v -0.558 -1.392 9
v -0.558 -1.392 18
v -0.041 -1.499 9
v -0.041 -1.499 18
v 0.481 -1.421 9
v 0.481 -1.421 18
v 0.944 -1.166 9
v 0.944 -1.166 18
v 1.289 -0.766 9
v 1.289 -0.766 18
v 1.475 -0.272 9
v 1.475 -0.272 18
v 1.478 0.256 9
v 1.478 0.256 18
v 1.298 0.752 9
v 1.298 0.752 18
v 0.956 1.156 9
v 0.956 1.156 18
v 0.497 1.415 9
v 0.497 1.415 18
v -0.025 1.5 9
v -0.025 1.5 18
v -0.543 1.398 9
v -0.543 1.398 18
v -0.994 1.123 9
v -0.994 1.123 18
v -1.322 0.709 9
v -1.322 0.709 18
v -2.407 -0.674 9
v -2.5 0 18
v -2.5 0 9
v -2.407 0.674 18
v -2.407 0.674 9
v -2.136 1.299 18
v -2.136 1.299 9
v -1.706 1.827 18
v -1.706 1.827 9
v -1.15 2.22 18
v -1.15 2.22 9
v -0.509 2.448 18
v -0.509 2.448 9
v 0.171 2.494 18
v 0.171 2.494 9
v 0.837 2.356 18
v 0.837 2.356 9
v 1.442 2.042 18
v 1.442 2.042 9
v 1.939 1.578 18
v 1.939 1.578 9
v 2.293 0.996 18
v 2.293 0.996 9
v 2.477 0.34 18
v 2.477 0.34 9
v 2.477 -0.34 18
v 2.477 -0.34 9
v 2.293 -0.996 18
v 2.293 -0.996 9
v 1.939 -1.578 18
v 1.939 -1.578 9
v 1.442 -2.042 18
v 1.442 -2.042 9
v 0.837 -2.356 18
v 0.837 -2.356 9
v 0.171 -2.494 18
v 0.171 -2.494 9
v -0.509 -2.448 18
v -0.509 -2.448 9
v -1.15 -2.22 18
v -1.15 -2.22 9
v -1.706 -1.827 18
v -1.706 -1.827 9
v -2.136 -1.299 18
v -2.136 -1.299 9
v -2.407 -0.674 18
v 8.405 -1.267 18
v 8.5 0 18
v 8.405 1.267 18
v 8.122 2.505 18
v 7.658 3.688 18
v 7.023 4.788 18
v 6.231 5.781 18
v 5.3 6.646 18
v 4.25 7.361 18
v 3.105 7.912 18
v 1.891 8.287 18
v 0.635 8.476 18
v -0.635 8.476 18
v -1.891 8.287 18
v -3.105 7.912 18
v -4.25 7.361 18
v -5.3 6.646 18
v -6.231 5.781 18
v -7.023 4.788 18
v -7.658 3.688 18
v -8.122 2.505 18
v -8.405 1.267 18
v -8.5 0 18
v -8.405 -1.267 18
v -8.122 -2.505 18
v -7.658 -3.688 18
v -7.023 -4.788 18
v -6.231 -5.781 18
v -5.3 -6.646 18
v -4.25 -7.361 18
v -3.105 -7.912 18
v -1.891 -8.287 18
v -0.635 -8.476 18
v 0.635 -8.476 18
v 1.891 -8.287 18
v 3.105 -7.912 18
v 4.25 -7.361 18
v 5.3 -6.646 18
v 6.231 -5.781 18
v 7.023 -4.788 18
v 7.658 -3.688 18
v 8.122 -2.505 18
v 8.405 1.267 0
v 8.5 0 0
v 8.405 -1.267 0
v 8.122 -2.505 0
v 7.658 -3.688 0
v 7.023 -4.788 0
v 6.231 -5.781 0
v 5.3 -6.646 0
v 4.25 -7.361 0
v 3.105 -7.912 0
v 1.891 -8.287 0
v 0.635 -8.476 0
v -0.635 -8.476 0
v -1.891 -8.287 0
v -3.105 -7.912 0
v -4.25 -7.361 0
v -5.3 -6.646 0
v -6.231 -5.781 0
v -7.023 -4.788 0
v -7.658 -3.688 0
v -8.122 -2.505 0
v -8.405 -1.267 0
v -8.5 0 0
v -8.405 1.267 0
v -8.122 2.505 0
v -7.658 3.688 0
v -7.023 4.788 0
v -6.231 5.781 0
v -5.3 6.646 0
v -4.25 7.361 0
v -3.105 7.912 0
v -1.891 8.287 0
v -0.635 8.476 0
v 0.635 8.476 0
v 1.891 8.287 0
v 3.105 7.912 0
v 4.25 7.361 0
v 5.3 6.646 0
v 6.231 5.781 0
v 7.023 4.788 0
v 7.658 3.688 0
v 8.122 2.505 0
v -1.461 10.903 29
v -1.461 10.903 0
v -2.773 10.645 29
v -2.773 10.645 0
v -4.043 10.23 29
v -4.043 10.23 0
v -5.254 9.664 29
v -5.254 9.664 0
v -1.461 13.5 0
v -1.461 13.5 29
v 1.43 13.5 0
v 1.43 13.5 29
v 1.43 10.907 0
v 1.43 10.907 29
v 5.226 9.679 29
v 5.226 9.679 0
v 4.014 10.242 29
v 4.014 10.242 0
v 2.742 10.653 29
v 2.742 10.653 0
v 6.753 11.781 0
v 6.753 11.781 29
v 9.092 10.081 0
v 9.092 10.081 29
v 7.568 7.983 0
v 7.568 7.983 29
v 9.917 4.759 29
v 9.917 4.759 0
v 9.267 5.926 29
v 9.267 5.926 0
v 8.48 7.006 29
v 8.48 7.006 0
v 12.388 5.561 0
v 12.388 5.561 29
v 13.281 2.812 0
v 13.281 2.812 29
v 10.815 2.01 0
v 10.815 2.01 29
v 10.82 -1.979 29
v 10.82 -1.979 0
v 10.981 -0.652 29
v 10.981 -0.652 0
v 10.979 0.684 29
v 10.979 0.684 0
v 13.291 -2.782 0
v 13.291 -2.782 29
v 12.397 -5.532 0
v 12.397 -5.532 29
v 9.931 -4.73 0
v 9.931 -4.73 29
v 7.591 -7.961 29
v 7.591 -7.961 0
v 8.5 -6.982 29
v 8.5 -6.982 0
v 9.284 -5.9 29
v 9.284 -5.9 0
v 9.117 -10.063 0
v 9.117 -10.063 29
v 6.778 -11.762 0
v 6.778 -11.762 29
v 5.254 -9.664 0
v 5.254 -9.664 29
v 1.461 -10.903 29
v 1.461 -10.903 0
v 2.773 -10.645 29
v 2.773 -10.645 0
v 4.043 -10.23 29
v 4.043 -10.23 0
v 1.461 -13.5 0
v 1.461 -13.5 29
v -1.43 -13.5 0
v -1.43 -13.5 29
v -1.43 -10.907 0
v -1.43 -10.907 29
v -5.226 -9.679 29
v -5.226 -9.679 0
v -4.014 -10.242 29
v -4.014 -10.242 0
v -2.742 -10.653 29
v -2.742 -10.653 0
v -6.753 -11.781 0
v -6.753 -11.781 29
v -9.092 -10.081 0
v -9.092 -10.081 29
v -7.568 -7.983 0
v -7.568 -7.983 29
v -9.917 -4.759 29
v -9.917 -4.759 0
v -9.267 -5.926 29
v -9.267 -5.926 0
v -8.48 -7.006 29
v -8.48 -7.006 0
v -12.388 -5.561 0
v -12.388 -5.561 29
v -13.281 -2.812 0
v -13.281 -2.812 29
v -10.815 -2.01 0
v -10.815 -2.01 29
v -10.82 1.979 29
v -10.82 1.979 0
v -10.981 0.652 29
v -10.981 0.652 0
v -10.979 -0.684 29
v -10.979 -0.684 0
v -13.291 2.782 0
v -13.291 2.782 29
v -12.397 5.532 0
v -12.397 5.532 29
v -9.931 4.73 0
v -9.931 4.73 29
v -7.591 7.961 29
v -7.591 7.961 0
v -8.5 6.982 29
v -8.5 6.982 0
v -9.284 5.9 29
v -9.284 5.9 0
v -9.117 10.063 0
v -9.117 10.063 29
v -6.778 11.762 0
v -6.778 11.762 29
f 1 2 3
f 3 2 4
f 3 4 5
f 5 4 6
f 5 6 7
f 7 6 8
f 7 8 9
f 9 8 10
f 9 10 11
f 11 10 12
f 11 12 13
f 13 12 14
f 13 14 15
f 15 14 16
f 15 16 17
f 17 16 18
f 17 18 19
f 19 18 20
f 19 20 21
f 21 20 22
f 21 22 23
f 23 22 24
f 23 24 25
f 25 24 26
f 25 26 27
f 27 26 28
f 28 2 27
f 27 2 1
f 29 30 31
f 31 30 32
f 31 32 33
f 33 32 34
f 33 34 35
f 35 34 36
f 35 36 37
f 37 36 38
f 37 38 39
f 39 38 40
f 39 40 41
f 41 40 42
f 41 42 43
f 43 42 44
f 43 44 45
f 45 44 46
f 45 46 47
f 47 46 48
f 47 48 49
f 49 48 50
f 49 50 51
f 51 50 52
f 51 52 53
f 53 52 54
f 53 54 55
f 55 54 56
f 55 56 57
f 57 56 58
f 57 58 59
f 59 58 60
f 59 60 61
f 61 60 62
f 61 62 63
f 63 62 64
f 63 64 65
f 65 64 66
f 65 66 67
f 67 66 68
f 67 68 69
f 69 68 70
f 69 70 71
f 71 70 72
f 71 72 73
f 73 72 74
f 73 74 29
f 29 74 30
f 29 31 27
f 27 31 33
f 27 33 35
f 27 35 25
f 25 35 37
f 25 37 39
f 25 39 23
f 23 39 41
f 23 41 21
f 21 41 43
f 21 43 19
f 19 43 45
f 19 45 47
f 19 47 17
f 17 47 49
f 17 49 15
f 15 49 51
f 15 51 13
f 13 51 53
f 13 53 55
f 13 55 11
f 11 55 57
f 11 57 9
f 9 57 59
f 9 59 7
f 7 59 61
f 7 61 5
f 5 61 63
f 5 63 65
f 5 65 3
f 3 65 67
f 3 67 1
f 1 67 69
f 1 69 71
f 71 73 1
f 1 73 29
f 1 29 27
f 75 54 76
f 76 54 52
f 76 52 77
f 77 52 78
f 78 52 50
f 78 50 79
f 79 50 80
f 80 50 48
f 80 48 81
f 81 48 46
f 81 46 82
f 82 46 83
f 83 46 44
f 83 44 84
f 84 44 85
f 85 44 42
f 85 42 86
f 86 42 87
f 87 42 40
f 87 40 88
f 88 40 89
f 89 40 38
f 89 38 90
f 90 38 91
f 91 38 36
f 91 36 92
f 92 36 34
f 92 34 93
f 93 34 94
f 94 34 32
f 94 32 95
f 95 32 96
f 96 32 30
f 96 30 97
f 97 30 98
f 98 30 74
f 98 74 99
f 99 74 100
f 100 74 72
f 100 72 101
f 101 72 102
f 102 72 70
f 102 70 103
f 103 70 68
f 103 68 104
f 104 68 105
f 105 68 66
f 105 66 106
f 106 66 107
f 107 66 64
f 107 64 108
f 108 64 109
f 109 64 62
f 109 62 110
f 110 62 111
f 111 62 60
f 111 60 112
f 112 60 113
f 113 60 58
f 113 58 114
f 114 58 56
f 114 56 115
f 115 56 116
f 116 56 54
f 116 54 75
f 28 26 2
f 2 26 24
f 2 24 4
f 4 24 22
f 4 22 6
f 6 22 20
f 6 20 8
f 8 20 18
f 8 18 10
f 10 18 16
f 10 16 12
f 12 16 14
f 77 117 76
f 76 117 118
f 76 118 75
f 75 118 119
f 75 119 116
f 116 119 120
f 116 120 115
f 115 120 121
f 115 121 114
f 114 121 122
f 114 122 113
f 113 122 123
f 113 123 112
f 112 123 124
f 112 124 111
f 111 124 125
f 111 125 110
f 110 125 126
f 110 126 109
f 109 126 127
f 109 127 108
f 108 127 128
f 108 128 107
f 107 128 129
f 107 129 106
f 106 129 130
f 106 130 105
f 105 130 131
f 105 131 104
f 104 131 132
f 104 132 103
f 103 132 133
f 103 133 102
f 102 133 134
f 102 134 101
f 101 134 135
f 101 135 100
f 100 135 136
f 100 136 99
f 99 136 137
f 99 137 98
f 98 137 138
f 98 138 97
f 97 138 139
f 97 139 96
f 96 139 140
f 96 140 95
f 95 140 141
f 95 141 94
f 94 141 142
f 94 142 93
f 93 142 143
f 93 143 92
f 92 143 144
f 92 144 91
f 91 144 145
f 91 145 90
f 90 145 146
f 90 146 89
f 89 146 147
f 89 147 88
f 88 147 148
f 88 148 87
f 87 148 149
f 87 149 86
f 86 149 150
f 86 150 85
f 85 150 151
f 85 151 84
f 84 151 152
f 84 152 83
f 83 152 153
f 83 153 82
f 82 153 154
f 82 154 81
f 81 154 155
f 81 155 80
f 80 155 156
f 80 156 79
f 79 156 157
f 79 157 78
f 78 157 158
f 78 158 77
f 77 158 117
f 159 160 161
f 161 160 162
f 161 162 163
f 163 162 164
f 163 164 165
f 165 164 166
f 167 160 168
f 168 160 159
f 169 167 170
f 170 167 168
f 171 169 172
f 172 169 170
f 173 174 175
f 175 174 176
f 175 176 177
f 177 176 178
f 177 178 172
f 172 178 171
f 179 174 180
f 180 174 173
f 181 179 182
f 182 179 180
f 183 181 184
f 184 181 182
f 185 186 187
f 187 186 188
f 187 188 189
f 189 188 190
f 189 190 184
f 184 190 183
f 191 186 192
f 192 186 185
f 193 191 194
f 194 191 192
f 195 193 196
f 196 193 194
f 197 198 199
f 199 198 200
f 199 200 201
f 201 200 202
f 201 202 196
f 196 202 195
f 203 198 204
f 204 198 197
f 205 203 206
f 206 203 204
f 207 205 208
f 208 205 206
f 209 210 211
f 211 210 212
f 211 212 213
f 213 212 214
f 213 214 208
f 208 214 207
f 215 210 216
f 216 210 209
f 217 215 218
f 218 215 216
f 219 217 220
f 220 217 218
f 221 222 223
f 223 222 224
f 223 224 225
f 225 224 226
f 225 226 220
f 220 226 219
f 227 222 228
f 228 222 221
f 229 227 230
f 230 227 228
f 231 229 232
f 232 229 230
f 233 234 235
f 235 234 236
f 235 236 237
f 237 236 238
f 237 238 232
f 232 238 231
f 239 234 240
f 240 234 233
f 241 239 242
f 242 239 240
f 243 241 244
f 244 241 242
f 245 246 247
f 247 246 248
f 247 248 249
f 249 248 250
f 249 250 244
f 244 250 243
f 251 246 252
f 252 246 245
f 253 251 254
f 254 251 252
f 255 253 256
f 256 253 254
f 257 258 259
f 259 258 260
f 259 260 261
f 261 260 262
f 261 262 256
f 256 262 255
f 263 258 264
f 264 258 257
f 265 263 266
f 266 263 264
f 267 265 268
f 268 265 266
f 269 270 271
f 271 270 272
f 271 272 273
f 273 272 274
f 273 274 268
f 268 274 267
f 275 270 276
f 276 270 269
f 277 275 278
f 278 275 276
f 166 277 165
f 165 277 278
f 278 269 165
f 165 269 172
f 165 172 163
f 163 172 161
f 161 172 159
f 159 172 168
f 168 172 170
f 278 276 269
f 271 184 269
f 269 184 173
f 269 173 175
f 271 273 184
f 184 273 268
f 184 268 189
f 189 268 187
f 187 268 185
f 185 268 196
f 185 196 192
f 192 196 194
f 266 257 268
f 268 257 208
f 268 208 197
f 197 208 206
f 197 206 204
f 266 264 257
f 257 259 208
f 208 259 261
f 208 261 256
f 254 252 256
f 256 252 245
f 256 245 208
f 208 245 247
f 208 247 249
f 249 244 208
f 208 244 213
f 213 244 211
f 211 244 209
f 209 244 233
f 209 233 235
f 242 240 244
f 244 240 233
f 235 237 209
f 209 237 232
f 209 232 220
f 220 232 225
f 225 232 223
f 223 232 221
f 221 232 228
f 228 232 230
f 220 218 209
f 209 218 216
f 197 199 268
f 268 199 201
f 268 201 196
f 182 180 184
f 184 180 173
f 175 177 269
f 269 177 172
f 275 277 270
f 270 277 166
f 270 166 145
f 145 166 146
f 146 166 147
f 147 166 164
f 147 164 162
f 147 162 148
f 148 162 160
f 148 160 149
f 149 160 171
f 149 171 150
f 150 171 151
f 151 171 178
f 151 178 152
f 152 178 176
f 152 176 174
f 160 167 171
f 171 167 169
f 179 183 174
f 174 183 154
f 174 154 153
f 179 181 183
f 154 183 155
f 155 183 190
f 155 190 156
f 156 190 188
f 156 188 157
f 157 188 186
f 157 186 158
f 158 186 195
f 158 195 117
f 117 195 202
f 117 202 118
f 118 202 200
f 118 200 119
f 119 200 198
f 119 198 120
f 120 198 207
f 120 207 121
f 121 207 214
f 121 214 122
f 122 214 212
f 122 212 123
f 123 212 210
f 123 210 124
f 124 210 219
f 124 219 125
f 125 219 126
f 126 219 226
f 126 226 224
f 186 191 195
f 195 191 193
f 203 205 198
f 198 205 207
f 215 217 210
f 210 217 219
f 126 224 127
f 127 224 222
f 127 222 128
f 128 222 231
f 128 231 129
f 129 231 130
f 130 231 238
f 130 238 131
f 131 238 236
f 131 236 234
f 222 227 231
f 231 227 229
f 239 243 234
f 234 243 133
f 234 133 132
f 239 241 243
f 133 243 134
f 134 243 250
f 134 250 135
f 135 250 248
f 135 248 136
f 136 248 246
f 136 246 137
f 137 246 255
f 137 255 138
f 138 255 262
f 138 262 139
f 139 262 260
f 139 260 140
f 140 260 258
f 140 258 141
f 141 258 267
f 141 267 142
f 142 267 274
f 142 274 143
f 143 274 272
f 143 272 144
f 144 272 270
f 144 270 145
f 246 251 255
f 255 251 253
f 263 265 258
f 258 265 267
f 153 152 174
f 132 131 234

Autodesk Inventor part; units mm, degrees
ref_plane "YZ Plane" through (0, 0, 0) normal (1, 0, 0) x (0, 1, 0)
sketch "Sketch1" plane through (0, 0, 0) normal (0, 0, 1) x (1, 0, 0)
  circle A0 centre (0, 0) radius 17 construction
  circle A1 centre (0, 0) radius 8.5
  line L0 (-1.4613, 13.5) -> (1.43, 13.5)
  line L1 (1.43, 13.5) -> (1.43, 10.9067)
  line L2 (-1.4613, 10.9025) -> (-1.4613, 13.5)
  line L3 (-6.7782, 11.7623) -> (-5.2539, 9.6642)
  line L4 (-9.1173, 10.0628) -> (-6.7782, 11.7623)
  line L5 (-7.5905, 7.9614) -> (-9.1173, 10.0628)
  line L6 (-12.3974, 5.5317) -> (-9.931, 4.7303)
  line L7 (-13.2908, 2.782) -> (-12.3974, 5.5317)
  line L8 (-10.8205, 1.9793) -> (-13.2908, 2.782)
  line L9 (-13.2812, -2.8117) -> (-10.8147, -2.0103)
  line L10 (-12.3877, -5.5615) -> (-13.2812, -2.8117)
  line L11 (-9.9173, -4.7588) -> (-12.3877, -5.5615)
  line L12 (-9.092, -10.0812) -> (-7.5677, -7.9831)
  line L13 (-6.7529, -11.7806) -> (-9.092, -10.0812)
  line L14 (-5.2261, -9.6792) -> (-6.7529, -11.7806)
  line L15 (-1.43, -13.5) -> (-1.43, -10.9067)
  line L16 (1.4613, -13.5) -> (-1.43, -13.5)
  line L17 (1.4613, -10.9025) -> (1.4613, -13.5)
  line L18 (6.7782, -11.7623) -> (5.2539, -9.6642)
  line L19 (9.1173, -10.0628) -> (6.7782, -11.7623)
  line L20 (7.5905, -7.9614) -> (9.1173, -10.0628)
  line L21 (12.3974, -5.5317) -> (9.931, -4.7303)
  line L22 (13.2908, -2.782) -> (12.3974, -5.5317)
  line L23 (10.8205, -1.9793) -> (13.2908, -2.782)
  line L24 (13.2812, 2.8117) -> (10.8147, 2.0103)
  line L25 (12.3877, 5.5615) -> (13.2812, 2.8117)
  line L26 (9.9173, 4.7588) -> (12.3877, 5.5615)
  line L27 (9.092, 10.0812) -> (7.5677, 7.9831)
  line L28 (6.7529, 11.7806) -> (9.092, 10.0812)
  line L29 (5.2261, 9.6792) -> (6.7529, 11.7806)
  arc A2 (-1.4613, 10.9025) -> (-5.2539, 9.6642) centre (0, 0) ccw construction
  arc A3 (-1.4613, 10.9025) -> (-5.2539, 9.6642) centre (0, 0) ccw
  arc A4 (-7.5905, 7.9614) -> (-9.931, 4.7303) centre (0, 0) ccw
  arc A5 (-7.5905, 7.9614) -> (-9.931, 4.7303) centre (0, 0) ccw construction
  arc A6 (-10.8205, 1.9793) -> (-10.8147, -2.0103) centre (0, 0) ccw
  arc A7 (-10.8205, 1.9793) -> (-10.8147, -2.0103) centre (0, 0) ccw construction
  arc A8 (-9.9173, -4.7588) -> (-7.5677, -7.9831) centre (0, 0) ccw
  arc A9 (-9.9173, -4.7588) -> (-7.5677, -7.9831) centre (0, 0) ccw construction
  arc A10 (5.2261, 9.6792) -> (1.43, 10.9067) centre (0, 0) ccw construction
  arc A11 (5.2261, 9.6792) -> (1.43, 10.9067) centre (0, 0) ccw
  arc A12 (10.8205, -1.9793) -> (10.8147, 2.0103) centre (0, 0) ccw
  arc A13 (10.8205, -1.9793) -> (10.8147, 2.0103) centre (0, 0) ccw construction
  arc A14 (7.5905, -7.9614) -> (9.931, -4.7303) centre (0, 0) ccw
  arc A15 (7.5905, -7.9614) -> (9.931, -4.7303) centre (0, 0) ccw construction
  arc A16 (-5.2261, -9.6792) -> (-1.43, -10.9067) centre (0, 0) ccw
  arc A17 (1.4613, -10.9025) -> (5.2539, -9.6642) centre (0, 0) ccw
  arc A18 (-5.2261, -9.6792) -> (-1.43, -10.9067) centre (0, 0) ccw construction
  arc A19 (1.4613, -10.9025) -> (5.2539, -9.6642) centre (0, 0) ccw construction
  arc A20 (9.9173, 4.7588) -> (7.5677, 7.9831) centre (0, 0) ccw
  dimension "d5" = 360
  dimension "d14" = 5
  dimension "d15" = 11
  dimension "d16" = 34
  dimension "d17" = 17
  dimension "d24" = 2.5933
  dimension "d25" = 2.8912
extrude "Extrusion1" add sketch "Sketch1" along normal blind 29
sketch "Sketch2" plane through (0, 0, 29) normal (0, 0, 1) x (1, 0, 0)
  line L0 (-5.2539, 9.6642) -> (-6.7782, 11.7623) projected
  line L1 (-6.7782, 11.7623) -> (-9.1173, 10.0628) projected
  line L2 (-9.1173, 10.0628) -> (-7.5905, 7.9614) projected
  arc A0 (-7.5905, 7.9614) -> (-9.931, 4.7303) centre (0, 0) ccw projected
  line L3 (-9.931, 4.7303) -> (-12.3974, 5.5317) projected
  line L4 (-12.3974, 5.5317) -> (-13.2908, 2.782) projected
  line L5 (-13.2908, 2.782) -> (-10.8205, 1.9793) projected
  arc A1 (-10.8205, 1.9793) -> (-10.8147, -2.0103) centre (0, 0) ccw projected
  line L6 (-10.8147, -2.0103) -> (-13.2812, -2.8117) projected
  line L7 (-13.2812, -2.8117) -> (-12.3877, -5.5615) projected
  line L8 (-12.3877, -5.5615) -> (-9.9173, -4.7588) projected
  arc A2 (-9.9173, -4.7588) -> (-7.5677, -7.9831) centre (0, 0) ccw projected
  line L9 (-7.5677, -7.9831) -> (-9.092, -10.0812) projected
  line L10 (-9.092, -10.0812) -> (-6.7529, -11.7806) projected
  line L11 (-6.7529, -11.7806) -> (-5.2261, -9.6792) projected
  arc A3 (-5.2261, -9.6792) -> (-1.43, -10.9067) centre (0, 0) ccw projected
  line L12 (-1.43, -10.9067) -> (-1.43, -13.5) projected
  line L13 (-1.43, -13.5) -> (1.4613, -13.5) projected
  line L14 (1.4613, -13.5) -> (1.4613, -10.9025) projected
  arc A4 (1.4613, -10.9025) -> (5.2539, -9.6642) centre (0, 0) ccw projected
  line L15 (5.2539, -9.6642) -> (6.7782, -11.7623) projected
  line L16 (6.7782, -11.7623) -> (9.1173, -10.0628) projected
  line L17 (9.1173, -10.0628) -> (7.5905, -7.9614) projected
  arc A5 (7.5905, -7.9614) -> (9.931, -4.7303) centre (0, 0) ccw projected
  line L18 (9.931, -4.7303) -> (12.3974, -5.5317) projected
  line L19 (12.3974, -5.5317) -> (13.2908, -2.782) projected
  line L20 (13.2908, -2.782) -> (10.8205, -1.9793) projected
  arc A6 (10.8205, -1.9793) -> (10.8147, 2.0103) centre (0, 0) ccw projected
  line L21 (10.8147, 2.0103) -> (13.2812, 2.8117) projected
  line L22 (13.2812, 2.8117) -> (12.3877, 5.5615) projected
  line L23 (12.3877, 5.5615) -> (9.9173, 4.7588) projected
  arc A7 (9.9173, 4.7588) -> (7.5677, 7.9831) centre (0, 0) ccw projected
  line L24 (7.5677, 7.9831) -> (9.092, 10.0812) projected
  line L25 (9.092, 10.0812) -> (6.7529, 11.7806) projected
  line L26 (6.7529, 11.7806) -> (5.2261, 9.6792) projected
  arc A8 (5.2261, 9.6792) -> (1.43, 10.9067) centre (0, 0) ccw projected
  line L27 (1.43, 10.9067) -> (1.43, 13.5) projected
  line L28 (1.43, 13.5) -> (-1.4613, 13.5) projected
  line L29 (-1.4613, 13.5) -> (-1.4613, 10.9025) projected
  arc A9 (-1.4613, 10.9025) -> (-5.2539, 9.6642) centre (0, 0) ccw projected
  circle A10 centre (0, 0) radius 8.5 projected
  circle A11 centre (0, 0) radius 8.5
extrude "Extrusion2" add sketch "Sketch2" against normal blind 11 contours A10
sketch "Sketch3" plane through (0, 0, 18) normal (0, 0, -1) x (-1, 0, 0)
  arc A0 (1.3217, 0.7094) -> (0.5581, -1.3923) centre (0, 0) ccw
  line L0 (0.5581, -1.3923) -> (1.3217, 0.7094)
  circle A1 centre (0, 0) radius 2.5
  point P0 (0, 0)
  dimension "d11" = 5
extrude "Extrusion3" add sketch "Sketch3" along normal blind 9
ref_plane "Work Plane1" through (-0.4516, -1.3897, 0) normal (-0.9511, 0.309, 0) x (0, 0, 1)
sketch "Sketch4" plane through (-0.4516, -1.3897, 0) normal (-0.9511, 0.309, 0) x (0, 0, 1)
  line L0 (31.9338, 1.727) -> (-3.3978, 1.727) construction
  point P0 (0, 1.4613)
ref_plane "Work Plane2" through (0, 0, 29) normal (0, 0, 1) x (1, 0, 0)
properties part number "felga"
